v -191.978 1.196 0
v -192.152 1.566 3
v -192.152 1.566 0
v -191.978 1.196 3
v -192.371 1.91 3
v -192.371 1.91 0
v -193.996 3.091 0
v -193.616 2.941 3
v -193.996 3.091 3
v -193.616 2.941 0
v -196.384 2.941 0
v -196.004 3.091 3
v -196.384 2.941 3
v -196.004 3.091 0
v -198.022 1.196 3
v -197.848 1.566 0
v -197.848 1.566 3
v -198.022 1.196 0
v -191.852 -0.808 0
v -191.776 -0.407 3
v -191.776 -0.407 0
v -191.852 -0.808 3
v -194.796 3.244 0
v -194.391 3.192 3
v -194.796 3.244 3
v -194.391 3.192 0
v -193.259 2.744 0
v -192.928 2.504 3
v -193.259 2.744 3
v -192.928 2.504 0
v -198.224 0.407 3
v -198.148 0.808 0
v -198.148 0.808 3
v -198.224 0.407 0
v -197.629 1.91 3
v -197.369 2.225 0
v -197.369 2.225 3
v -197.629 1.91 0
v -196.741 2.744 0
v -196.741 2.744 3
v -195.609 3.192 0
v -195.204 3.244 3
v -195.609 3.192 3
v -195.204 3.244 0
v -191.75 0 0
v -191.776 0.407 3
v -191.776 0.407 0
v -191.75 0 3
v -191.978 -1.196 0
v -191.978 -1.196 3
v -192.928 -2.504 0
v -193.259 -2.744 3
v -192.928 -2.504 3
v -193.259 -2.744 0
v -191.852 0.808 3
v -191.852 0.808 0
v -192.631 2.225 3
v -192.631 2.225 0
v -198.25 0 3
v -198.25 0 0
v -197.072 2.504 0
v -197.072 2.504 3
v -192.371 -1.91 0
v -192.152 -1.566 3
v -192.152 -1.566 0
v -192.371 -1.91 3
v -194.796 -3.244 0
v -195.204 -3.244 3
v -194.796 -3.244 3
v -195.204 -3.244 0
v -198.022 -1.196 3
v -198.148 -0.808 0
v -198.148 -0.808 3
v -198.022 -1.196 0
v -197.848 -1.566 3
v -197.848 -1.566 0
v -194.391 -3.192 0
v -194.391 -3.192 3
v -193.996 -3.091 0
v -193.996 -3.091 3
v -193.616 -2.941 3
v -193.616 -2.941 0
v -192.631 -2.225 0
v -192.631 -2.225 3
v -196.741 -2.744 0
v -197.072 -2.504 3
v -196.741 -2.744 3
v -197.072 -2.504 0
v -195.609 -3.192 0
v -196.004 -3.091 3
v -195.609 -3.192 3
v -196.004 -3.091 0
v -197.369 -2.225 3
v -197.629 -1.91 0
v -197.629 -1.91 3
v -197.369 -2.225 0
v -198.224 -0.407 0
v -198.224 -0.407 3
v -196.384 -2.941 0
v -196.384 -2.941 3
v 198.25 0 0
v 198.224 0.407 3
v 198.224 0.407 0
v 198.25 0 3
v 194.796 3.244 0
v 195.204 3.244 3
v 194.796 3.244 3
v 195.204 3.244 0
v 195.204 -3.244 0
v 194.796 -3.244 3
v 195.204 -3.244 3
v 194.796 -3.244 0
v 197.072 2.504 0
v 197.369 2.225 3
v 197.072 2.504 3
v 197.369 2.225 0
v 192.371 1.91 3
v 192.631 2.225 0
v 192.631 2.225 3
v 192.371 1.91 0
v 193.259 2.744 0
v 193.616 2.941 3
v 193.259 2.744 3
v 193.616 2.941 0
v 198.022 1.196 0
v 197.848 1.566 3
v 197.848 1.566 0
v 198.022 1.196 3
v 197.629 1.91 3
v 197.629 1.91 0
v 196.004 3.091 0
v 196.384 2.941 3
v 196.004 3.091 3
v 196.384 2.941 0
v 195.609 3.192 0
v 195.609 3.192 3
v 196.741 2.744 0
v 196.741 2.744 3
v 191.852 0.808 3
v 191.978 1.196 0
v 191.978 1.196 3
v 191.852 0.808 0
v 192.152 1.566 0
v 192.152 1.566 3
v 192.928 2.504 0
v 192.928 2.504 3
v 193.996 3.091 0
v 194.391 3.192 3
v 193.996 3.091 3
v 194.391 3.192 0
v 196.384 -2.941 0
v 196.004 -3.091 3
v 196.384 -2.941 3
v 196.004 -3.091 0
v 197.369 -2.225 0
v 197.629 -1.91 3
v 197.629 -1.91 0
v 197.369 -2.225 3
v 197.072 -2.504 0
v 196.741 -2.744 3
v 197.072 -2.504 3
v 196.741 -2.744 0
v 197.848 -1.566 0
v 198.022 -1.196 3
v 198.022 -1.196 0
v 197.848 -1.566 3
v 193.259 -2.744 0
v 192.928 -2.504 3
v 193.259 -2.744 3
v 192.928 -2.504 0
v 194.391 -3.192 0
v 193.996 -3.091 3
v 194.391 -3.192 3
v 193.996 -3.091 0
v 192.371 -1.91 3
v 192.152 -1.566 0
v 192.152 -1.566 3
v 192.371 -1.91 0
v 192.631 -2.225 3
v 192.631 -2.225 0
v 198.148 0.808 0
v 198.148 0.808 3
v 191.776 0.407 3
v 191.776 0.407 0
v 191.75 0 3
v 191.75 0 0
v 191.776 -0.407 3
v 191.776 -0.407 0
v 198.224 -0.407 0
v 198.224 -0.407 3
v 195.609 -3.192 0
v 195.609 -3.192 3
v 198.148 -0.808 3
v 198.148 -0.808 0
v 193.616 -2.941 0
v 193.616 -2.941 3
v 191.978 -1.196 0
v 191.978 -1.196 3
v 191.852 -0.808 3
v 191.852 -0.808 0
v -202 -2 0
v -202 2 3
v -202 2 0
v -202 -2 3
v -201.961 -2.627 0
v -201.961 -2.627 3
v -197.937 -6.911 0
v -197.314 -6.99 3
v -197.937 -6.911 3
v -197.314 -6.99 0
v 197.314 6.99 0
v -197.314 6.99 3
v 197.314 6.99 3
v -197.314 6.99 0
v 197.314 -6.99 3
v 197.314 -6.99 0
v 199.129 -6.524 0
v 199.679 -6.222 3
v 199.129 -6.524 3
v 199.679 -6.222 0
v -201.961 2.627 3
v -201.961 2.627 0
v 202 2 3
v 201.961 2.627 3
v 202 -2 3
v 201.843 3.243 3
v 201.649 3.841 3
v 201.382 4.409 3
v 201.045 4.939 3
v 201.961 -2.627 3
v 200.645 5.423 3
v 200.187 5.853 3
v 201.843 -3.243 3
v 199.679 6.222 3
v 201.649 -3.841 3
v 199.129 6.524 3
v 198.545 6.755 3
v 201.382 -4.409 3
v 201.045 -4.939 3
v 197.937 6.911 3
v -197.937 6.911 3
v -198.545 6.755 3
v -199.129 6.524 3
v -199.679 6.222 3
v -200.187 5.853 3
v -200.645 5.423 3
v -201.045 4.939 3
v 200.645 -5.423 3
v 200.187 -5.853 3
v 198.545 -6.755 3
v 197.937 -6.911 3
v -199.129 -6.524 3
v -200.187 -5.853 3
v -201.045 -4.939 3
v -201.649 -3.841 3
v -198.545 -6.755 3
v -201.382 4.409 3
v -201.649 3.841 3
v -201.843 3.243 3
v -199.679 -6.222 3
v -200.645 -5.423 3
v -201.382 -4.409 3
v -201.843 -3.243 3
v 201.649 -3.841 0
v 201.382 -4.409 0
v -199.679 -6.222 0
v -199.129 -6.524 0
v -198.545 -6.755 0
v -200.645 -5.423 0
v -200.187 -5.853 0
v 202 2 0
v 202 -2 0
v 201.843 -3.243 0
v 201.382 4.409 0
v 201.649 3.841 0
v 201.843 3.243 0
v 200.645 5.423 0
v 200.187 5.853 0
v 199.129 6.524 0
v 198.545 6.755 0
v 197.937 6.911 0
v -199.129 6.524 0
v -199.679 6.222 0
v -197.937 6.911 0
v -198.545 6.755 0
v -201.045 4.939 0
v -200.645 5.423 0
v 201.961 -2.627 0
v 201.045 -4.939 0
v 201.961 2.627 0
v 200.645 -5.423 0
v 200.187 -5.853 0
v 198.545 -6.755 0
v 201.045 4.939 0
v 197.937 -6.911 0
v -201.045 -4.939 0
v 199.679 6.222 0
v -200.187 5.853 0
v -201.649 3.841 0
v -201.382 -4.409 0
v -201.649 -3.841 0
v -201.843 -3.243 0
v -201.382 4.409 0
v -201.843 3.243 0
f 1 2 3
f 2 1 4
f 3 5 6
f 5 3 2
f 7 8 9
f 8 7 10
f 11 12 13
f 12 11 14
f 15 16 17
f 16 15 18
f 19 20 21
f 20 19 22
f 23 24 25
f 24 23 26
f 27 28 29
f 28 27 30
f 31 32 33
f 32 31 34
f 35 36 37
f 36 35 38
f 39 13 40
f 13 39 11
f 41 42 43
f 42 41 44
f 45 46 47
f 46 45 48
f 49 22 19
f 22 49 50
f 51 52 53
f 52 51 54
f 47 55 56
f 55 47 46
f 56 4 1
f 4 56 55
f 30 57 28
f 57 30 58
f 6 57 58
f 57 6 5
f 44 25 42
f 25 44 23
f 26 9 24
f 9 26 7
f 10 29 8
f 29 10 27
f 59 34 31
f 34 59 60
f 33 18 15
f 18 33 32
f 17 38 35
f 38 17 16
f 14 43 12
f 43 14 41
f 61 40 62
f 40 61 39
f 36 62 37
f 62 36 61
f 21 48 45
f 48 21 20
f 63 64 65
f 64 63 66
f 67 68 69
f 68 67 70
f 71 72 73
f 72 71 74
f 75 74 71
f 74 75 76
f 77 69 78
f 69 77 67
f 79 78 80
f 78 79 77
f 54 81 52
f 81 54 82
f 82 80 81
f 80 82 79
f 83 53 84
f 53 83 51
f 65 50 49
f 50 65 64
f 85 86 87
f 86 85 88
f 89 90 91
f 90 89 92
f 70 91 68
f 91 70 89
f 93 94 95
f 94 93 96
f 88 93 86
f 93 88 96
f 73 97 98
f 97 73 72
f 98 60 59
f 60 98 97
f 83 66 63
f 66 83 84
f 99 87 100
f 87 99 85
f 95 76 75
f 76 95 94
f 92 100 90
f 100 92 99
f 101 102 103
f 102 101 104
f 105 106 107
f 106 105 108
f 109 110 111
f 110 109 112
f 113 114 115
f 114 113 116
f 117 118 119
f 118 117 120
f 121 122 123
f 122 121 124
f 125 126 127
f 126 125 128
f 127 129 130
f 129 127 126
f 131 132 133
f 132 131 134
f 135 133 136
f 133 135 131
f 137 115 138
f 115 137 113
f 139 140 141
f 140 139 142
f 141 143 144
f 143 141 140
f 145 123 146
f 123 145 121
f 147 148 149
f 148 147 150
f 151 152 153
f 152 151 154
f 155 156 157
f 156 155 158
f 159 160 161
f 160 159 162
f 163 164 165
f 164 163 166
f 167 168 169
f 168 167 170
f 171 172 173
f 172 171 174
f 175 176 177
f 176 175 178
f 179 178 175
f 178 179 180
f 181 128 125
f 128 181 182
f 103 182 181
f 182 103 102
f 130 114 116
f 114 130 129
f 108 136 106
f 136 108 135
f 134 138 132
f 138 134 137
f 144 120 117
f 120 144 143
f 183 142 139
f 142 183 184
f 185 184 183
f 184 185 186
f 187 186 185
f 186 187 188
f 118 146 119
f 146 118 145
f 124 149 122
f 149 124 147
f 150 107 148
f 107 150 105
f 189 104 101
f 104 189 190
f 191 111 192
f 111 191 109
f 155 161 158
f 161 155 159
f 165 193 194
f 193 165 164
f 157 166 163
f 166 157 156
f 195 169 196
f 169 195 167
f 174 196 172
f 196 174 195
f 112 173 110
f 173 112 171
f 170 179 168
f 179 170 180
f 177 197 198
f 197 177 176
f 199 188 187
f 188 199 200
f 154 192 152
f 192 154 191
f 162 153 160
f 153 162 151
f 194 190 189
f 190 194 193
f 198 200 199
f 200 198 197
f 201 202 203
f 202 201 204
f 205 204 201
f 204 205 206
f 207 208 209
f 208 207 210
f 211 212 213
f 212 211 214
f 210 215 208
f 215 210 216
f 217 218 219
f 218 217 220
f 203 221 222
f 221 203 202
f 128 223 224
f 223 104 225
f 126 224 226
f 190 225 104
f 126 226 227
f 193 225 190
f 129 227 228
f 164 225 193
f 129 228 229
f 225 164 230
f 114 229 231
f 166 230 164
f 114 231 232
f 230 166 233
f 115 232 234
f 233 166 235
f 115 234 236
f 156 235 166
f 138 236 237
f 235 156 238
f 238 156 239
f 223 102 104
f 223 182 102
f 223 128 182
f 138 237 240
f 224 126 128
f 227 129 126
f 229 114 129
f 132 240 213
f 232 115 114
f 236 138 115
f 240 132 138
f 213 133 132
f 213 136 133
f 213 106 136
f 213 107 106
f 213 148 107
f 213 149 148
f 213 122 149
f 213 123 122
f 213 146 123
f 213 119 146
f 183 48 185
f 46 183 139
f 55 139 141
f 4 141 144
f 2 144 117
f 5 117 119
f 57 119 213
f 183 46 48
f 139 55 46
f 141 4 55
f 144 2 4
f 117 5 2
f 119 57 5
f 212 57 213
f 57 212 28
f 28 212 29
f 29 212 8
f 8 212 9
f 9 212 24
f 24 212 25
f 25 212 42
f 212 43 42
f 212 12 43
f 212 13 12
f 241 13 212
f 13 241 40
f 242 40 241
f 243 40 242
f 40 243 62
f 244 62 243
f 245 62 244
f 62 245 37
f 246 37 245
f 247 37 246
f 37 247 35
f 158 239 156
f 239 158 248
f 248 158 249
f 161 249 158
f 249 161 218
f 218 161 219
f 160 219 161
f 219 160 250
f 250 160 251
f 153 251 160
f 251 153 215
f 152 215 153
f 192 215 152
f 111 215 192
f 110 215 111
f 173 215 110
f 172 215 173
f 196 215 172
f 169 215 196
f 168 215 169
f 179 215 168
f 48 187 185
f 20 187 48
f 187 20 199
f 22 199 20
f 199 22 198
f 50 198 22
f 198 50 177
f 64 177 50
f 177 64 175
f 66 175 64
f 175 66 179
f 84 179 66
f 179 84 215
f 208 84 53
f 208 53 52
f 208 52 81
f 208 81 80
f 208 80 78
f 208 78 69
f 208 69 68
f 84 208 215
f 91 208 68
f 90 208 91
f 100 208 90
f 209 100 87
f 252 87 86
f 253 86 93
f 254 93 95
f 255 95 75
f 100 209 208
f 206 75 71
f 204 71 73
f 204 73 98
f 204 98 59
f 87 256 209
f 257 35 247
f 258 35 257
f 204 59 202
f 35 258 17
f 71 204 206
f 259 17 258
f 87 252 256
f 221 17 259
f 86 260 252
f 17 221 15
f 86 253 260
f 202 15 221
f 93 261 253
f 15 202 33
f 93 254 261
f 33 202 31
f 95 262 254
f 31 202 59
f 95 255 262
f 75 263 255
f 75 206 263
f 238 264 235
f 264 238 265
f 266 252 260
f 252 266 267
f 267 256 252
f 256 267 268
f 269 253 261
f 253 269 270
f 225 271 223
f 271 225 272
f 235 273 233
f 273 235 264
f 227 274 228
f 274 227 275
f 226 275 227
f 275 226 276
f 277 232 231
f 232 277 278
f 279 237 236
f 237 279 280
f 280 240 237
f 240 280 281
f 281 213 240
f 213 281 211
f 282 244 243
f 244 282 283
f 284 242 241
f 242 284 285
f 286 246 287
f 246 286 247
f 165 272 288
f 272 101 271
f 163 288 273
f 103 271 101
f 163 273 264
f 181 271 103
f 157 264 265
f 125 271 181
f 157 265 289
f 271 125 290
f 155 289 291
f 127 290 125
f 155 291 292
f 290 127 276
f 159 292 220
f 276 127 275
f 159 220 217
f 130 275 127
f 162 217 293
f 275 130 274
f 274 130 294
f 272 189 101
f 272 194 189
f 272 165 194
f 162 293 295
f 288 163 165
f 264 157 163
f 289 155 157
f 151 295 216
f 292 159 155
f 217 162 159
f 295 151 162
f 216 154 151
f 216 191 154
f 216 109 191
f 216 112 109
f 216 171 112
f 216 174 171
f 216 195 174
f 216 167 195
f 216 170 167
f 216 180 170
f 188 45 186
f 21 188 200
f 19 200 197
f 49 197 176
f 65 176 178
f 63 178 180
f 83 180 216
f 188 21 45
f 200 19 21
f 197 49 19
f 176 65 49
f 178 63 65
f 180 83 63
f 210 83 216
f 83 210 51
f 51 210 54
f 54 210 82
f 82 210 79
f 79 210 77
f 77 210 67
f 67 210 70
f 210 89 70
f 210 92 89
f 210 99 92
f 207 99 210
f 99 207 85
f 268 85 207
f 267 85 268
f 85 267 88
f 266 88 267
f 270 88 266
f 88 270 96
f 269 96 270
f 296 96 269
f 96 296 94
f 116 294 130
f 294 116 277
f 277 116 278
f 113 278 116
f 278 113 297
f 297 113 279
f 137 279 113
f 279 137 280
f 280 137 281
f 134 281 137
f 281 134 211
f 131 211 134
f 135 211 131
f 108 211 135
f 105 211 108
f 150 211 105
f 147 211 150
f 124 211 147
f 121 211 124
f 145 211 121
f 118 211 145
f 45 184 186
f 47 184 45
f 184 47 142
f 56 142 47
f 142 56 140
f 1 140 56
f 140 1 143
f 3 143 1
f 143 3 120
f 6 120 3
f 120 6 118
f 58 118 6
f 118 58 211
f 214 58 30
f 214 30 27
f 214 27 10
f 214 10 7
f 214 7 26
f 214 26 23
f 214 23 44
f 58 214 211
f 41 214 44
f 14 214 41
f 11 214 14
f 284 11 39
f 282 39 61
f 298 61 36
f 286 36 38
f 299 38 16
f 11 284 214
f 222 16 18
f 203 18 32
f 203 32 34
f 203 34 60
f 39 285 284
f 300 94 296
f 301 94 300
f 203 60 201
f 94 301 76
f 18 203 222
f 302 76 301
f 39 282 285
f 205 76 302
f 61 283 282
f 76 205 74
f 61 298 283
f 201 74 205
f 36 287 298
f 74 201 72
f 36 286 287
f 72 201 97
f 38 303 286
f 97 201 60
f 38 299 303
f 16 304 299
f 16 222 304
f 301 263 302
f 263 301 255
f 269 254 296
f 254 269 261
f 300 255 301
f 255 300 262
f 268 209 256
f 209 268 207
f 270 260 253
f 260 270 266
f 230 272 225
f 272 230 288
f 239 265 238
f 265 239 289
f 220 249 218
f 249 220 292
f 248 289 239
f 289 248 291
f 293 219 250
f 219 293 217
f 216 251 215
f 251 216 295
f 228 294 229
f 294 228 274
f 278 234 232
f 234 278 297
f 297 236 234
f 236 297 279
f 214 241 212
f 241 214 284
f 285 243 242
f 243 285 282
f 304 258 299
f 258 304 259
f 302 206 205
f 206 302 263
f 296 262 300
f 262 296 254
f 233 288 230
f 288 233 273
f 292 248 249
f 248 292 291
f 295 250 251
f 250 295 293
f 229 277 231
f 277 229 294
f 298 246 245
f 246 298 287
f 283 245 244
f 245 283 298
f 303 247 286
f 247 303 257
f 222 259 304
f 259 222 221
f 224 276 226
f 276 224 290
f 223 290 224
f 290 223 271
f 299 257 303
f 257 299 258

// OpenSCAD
$fn = 50;


difference() {
	union() {
		hull() {
			translate(v = [-197.0000000000, 2.0000000000, 0]) {
				cylinder(h = 3, r = 5);
			}
			translate(v = [197.0000000000, 2.0000000000, 0]) {
				cylinder(h = 3, r = 5);
			}
			translate(v = [-197.0000000000, -2.0000000000, 0]) {
				cylinder(h = 3, r = 5);
			}
			translate(v = [197.0000000000, -2.0000000000, 0]) {
				cylinder(h = 3, r = 5);
			}
		}
	}
	union() {
		translate(v = [-195.0000000000, 0.0000000000, 0]) {
			cylinder(h = 3, r = 3.2500000000);
		}
		translate(v = [195.0000000000, 0.0000000000, 0]) {
			cylinder(h = 3, r = 3.2500000000);
		}
		translate(v = [-195.0000000000, 0.0000000000, 0]) {
			cylinder(h = 3, r = 1.8000000000);
		}
		translate(v = [195.0000000000, 0.0000000000, 0]) {
			cylinder(h = 3, r = 1.8000000000);
		}
		translate(v = [-195.0000000000, 0.0000000000, 0]) {
			cylinder(h = 3, r = 1.8000000000);
		}
		translate(v = [195.0000000000, 0.0000000000, 0]) {
			cylinder(h = 3, r = 1.8000000000);
		}
		translate(v = [-195.0000000000, 0.0000000000, 0]) {
			cylinder(h = 3, r = 1.8000000000);
		}
		translate(v = [195.0000000000, 0.0000000000, 0]) {
			cylinder(h = 3, r = 1.8000000000);
		}
	}
}
